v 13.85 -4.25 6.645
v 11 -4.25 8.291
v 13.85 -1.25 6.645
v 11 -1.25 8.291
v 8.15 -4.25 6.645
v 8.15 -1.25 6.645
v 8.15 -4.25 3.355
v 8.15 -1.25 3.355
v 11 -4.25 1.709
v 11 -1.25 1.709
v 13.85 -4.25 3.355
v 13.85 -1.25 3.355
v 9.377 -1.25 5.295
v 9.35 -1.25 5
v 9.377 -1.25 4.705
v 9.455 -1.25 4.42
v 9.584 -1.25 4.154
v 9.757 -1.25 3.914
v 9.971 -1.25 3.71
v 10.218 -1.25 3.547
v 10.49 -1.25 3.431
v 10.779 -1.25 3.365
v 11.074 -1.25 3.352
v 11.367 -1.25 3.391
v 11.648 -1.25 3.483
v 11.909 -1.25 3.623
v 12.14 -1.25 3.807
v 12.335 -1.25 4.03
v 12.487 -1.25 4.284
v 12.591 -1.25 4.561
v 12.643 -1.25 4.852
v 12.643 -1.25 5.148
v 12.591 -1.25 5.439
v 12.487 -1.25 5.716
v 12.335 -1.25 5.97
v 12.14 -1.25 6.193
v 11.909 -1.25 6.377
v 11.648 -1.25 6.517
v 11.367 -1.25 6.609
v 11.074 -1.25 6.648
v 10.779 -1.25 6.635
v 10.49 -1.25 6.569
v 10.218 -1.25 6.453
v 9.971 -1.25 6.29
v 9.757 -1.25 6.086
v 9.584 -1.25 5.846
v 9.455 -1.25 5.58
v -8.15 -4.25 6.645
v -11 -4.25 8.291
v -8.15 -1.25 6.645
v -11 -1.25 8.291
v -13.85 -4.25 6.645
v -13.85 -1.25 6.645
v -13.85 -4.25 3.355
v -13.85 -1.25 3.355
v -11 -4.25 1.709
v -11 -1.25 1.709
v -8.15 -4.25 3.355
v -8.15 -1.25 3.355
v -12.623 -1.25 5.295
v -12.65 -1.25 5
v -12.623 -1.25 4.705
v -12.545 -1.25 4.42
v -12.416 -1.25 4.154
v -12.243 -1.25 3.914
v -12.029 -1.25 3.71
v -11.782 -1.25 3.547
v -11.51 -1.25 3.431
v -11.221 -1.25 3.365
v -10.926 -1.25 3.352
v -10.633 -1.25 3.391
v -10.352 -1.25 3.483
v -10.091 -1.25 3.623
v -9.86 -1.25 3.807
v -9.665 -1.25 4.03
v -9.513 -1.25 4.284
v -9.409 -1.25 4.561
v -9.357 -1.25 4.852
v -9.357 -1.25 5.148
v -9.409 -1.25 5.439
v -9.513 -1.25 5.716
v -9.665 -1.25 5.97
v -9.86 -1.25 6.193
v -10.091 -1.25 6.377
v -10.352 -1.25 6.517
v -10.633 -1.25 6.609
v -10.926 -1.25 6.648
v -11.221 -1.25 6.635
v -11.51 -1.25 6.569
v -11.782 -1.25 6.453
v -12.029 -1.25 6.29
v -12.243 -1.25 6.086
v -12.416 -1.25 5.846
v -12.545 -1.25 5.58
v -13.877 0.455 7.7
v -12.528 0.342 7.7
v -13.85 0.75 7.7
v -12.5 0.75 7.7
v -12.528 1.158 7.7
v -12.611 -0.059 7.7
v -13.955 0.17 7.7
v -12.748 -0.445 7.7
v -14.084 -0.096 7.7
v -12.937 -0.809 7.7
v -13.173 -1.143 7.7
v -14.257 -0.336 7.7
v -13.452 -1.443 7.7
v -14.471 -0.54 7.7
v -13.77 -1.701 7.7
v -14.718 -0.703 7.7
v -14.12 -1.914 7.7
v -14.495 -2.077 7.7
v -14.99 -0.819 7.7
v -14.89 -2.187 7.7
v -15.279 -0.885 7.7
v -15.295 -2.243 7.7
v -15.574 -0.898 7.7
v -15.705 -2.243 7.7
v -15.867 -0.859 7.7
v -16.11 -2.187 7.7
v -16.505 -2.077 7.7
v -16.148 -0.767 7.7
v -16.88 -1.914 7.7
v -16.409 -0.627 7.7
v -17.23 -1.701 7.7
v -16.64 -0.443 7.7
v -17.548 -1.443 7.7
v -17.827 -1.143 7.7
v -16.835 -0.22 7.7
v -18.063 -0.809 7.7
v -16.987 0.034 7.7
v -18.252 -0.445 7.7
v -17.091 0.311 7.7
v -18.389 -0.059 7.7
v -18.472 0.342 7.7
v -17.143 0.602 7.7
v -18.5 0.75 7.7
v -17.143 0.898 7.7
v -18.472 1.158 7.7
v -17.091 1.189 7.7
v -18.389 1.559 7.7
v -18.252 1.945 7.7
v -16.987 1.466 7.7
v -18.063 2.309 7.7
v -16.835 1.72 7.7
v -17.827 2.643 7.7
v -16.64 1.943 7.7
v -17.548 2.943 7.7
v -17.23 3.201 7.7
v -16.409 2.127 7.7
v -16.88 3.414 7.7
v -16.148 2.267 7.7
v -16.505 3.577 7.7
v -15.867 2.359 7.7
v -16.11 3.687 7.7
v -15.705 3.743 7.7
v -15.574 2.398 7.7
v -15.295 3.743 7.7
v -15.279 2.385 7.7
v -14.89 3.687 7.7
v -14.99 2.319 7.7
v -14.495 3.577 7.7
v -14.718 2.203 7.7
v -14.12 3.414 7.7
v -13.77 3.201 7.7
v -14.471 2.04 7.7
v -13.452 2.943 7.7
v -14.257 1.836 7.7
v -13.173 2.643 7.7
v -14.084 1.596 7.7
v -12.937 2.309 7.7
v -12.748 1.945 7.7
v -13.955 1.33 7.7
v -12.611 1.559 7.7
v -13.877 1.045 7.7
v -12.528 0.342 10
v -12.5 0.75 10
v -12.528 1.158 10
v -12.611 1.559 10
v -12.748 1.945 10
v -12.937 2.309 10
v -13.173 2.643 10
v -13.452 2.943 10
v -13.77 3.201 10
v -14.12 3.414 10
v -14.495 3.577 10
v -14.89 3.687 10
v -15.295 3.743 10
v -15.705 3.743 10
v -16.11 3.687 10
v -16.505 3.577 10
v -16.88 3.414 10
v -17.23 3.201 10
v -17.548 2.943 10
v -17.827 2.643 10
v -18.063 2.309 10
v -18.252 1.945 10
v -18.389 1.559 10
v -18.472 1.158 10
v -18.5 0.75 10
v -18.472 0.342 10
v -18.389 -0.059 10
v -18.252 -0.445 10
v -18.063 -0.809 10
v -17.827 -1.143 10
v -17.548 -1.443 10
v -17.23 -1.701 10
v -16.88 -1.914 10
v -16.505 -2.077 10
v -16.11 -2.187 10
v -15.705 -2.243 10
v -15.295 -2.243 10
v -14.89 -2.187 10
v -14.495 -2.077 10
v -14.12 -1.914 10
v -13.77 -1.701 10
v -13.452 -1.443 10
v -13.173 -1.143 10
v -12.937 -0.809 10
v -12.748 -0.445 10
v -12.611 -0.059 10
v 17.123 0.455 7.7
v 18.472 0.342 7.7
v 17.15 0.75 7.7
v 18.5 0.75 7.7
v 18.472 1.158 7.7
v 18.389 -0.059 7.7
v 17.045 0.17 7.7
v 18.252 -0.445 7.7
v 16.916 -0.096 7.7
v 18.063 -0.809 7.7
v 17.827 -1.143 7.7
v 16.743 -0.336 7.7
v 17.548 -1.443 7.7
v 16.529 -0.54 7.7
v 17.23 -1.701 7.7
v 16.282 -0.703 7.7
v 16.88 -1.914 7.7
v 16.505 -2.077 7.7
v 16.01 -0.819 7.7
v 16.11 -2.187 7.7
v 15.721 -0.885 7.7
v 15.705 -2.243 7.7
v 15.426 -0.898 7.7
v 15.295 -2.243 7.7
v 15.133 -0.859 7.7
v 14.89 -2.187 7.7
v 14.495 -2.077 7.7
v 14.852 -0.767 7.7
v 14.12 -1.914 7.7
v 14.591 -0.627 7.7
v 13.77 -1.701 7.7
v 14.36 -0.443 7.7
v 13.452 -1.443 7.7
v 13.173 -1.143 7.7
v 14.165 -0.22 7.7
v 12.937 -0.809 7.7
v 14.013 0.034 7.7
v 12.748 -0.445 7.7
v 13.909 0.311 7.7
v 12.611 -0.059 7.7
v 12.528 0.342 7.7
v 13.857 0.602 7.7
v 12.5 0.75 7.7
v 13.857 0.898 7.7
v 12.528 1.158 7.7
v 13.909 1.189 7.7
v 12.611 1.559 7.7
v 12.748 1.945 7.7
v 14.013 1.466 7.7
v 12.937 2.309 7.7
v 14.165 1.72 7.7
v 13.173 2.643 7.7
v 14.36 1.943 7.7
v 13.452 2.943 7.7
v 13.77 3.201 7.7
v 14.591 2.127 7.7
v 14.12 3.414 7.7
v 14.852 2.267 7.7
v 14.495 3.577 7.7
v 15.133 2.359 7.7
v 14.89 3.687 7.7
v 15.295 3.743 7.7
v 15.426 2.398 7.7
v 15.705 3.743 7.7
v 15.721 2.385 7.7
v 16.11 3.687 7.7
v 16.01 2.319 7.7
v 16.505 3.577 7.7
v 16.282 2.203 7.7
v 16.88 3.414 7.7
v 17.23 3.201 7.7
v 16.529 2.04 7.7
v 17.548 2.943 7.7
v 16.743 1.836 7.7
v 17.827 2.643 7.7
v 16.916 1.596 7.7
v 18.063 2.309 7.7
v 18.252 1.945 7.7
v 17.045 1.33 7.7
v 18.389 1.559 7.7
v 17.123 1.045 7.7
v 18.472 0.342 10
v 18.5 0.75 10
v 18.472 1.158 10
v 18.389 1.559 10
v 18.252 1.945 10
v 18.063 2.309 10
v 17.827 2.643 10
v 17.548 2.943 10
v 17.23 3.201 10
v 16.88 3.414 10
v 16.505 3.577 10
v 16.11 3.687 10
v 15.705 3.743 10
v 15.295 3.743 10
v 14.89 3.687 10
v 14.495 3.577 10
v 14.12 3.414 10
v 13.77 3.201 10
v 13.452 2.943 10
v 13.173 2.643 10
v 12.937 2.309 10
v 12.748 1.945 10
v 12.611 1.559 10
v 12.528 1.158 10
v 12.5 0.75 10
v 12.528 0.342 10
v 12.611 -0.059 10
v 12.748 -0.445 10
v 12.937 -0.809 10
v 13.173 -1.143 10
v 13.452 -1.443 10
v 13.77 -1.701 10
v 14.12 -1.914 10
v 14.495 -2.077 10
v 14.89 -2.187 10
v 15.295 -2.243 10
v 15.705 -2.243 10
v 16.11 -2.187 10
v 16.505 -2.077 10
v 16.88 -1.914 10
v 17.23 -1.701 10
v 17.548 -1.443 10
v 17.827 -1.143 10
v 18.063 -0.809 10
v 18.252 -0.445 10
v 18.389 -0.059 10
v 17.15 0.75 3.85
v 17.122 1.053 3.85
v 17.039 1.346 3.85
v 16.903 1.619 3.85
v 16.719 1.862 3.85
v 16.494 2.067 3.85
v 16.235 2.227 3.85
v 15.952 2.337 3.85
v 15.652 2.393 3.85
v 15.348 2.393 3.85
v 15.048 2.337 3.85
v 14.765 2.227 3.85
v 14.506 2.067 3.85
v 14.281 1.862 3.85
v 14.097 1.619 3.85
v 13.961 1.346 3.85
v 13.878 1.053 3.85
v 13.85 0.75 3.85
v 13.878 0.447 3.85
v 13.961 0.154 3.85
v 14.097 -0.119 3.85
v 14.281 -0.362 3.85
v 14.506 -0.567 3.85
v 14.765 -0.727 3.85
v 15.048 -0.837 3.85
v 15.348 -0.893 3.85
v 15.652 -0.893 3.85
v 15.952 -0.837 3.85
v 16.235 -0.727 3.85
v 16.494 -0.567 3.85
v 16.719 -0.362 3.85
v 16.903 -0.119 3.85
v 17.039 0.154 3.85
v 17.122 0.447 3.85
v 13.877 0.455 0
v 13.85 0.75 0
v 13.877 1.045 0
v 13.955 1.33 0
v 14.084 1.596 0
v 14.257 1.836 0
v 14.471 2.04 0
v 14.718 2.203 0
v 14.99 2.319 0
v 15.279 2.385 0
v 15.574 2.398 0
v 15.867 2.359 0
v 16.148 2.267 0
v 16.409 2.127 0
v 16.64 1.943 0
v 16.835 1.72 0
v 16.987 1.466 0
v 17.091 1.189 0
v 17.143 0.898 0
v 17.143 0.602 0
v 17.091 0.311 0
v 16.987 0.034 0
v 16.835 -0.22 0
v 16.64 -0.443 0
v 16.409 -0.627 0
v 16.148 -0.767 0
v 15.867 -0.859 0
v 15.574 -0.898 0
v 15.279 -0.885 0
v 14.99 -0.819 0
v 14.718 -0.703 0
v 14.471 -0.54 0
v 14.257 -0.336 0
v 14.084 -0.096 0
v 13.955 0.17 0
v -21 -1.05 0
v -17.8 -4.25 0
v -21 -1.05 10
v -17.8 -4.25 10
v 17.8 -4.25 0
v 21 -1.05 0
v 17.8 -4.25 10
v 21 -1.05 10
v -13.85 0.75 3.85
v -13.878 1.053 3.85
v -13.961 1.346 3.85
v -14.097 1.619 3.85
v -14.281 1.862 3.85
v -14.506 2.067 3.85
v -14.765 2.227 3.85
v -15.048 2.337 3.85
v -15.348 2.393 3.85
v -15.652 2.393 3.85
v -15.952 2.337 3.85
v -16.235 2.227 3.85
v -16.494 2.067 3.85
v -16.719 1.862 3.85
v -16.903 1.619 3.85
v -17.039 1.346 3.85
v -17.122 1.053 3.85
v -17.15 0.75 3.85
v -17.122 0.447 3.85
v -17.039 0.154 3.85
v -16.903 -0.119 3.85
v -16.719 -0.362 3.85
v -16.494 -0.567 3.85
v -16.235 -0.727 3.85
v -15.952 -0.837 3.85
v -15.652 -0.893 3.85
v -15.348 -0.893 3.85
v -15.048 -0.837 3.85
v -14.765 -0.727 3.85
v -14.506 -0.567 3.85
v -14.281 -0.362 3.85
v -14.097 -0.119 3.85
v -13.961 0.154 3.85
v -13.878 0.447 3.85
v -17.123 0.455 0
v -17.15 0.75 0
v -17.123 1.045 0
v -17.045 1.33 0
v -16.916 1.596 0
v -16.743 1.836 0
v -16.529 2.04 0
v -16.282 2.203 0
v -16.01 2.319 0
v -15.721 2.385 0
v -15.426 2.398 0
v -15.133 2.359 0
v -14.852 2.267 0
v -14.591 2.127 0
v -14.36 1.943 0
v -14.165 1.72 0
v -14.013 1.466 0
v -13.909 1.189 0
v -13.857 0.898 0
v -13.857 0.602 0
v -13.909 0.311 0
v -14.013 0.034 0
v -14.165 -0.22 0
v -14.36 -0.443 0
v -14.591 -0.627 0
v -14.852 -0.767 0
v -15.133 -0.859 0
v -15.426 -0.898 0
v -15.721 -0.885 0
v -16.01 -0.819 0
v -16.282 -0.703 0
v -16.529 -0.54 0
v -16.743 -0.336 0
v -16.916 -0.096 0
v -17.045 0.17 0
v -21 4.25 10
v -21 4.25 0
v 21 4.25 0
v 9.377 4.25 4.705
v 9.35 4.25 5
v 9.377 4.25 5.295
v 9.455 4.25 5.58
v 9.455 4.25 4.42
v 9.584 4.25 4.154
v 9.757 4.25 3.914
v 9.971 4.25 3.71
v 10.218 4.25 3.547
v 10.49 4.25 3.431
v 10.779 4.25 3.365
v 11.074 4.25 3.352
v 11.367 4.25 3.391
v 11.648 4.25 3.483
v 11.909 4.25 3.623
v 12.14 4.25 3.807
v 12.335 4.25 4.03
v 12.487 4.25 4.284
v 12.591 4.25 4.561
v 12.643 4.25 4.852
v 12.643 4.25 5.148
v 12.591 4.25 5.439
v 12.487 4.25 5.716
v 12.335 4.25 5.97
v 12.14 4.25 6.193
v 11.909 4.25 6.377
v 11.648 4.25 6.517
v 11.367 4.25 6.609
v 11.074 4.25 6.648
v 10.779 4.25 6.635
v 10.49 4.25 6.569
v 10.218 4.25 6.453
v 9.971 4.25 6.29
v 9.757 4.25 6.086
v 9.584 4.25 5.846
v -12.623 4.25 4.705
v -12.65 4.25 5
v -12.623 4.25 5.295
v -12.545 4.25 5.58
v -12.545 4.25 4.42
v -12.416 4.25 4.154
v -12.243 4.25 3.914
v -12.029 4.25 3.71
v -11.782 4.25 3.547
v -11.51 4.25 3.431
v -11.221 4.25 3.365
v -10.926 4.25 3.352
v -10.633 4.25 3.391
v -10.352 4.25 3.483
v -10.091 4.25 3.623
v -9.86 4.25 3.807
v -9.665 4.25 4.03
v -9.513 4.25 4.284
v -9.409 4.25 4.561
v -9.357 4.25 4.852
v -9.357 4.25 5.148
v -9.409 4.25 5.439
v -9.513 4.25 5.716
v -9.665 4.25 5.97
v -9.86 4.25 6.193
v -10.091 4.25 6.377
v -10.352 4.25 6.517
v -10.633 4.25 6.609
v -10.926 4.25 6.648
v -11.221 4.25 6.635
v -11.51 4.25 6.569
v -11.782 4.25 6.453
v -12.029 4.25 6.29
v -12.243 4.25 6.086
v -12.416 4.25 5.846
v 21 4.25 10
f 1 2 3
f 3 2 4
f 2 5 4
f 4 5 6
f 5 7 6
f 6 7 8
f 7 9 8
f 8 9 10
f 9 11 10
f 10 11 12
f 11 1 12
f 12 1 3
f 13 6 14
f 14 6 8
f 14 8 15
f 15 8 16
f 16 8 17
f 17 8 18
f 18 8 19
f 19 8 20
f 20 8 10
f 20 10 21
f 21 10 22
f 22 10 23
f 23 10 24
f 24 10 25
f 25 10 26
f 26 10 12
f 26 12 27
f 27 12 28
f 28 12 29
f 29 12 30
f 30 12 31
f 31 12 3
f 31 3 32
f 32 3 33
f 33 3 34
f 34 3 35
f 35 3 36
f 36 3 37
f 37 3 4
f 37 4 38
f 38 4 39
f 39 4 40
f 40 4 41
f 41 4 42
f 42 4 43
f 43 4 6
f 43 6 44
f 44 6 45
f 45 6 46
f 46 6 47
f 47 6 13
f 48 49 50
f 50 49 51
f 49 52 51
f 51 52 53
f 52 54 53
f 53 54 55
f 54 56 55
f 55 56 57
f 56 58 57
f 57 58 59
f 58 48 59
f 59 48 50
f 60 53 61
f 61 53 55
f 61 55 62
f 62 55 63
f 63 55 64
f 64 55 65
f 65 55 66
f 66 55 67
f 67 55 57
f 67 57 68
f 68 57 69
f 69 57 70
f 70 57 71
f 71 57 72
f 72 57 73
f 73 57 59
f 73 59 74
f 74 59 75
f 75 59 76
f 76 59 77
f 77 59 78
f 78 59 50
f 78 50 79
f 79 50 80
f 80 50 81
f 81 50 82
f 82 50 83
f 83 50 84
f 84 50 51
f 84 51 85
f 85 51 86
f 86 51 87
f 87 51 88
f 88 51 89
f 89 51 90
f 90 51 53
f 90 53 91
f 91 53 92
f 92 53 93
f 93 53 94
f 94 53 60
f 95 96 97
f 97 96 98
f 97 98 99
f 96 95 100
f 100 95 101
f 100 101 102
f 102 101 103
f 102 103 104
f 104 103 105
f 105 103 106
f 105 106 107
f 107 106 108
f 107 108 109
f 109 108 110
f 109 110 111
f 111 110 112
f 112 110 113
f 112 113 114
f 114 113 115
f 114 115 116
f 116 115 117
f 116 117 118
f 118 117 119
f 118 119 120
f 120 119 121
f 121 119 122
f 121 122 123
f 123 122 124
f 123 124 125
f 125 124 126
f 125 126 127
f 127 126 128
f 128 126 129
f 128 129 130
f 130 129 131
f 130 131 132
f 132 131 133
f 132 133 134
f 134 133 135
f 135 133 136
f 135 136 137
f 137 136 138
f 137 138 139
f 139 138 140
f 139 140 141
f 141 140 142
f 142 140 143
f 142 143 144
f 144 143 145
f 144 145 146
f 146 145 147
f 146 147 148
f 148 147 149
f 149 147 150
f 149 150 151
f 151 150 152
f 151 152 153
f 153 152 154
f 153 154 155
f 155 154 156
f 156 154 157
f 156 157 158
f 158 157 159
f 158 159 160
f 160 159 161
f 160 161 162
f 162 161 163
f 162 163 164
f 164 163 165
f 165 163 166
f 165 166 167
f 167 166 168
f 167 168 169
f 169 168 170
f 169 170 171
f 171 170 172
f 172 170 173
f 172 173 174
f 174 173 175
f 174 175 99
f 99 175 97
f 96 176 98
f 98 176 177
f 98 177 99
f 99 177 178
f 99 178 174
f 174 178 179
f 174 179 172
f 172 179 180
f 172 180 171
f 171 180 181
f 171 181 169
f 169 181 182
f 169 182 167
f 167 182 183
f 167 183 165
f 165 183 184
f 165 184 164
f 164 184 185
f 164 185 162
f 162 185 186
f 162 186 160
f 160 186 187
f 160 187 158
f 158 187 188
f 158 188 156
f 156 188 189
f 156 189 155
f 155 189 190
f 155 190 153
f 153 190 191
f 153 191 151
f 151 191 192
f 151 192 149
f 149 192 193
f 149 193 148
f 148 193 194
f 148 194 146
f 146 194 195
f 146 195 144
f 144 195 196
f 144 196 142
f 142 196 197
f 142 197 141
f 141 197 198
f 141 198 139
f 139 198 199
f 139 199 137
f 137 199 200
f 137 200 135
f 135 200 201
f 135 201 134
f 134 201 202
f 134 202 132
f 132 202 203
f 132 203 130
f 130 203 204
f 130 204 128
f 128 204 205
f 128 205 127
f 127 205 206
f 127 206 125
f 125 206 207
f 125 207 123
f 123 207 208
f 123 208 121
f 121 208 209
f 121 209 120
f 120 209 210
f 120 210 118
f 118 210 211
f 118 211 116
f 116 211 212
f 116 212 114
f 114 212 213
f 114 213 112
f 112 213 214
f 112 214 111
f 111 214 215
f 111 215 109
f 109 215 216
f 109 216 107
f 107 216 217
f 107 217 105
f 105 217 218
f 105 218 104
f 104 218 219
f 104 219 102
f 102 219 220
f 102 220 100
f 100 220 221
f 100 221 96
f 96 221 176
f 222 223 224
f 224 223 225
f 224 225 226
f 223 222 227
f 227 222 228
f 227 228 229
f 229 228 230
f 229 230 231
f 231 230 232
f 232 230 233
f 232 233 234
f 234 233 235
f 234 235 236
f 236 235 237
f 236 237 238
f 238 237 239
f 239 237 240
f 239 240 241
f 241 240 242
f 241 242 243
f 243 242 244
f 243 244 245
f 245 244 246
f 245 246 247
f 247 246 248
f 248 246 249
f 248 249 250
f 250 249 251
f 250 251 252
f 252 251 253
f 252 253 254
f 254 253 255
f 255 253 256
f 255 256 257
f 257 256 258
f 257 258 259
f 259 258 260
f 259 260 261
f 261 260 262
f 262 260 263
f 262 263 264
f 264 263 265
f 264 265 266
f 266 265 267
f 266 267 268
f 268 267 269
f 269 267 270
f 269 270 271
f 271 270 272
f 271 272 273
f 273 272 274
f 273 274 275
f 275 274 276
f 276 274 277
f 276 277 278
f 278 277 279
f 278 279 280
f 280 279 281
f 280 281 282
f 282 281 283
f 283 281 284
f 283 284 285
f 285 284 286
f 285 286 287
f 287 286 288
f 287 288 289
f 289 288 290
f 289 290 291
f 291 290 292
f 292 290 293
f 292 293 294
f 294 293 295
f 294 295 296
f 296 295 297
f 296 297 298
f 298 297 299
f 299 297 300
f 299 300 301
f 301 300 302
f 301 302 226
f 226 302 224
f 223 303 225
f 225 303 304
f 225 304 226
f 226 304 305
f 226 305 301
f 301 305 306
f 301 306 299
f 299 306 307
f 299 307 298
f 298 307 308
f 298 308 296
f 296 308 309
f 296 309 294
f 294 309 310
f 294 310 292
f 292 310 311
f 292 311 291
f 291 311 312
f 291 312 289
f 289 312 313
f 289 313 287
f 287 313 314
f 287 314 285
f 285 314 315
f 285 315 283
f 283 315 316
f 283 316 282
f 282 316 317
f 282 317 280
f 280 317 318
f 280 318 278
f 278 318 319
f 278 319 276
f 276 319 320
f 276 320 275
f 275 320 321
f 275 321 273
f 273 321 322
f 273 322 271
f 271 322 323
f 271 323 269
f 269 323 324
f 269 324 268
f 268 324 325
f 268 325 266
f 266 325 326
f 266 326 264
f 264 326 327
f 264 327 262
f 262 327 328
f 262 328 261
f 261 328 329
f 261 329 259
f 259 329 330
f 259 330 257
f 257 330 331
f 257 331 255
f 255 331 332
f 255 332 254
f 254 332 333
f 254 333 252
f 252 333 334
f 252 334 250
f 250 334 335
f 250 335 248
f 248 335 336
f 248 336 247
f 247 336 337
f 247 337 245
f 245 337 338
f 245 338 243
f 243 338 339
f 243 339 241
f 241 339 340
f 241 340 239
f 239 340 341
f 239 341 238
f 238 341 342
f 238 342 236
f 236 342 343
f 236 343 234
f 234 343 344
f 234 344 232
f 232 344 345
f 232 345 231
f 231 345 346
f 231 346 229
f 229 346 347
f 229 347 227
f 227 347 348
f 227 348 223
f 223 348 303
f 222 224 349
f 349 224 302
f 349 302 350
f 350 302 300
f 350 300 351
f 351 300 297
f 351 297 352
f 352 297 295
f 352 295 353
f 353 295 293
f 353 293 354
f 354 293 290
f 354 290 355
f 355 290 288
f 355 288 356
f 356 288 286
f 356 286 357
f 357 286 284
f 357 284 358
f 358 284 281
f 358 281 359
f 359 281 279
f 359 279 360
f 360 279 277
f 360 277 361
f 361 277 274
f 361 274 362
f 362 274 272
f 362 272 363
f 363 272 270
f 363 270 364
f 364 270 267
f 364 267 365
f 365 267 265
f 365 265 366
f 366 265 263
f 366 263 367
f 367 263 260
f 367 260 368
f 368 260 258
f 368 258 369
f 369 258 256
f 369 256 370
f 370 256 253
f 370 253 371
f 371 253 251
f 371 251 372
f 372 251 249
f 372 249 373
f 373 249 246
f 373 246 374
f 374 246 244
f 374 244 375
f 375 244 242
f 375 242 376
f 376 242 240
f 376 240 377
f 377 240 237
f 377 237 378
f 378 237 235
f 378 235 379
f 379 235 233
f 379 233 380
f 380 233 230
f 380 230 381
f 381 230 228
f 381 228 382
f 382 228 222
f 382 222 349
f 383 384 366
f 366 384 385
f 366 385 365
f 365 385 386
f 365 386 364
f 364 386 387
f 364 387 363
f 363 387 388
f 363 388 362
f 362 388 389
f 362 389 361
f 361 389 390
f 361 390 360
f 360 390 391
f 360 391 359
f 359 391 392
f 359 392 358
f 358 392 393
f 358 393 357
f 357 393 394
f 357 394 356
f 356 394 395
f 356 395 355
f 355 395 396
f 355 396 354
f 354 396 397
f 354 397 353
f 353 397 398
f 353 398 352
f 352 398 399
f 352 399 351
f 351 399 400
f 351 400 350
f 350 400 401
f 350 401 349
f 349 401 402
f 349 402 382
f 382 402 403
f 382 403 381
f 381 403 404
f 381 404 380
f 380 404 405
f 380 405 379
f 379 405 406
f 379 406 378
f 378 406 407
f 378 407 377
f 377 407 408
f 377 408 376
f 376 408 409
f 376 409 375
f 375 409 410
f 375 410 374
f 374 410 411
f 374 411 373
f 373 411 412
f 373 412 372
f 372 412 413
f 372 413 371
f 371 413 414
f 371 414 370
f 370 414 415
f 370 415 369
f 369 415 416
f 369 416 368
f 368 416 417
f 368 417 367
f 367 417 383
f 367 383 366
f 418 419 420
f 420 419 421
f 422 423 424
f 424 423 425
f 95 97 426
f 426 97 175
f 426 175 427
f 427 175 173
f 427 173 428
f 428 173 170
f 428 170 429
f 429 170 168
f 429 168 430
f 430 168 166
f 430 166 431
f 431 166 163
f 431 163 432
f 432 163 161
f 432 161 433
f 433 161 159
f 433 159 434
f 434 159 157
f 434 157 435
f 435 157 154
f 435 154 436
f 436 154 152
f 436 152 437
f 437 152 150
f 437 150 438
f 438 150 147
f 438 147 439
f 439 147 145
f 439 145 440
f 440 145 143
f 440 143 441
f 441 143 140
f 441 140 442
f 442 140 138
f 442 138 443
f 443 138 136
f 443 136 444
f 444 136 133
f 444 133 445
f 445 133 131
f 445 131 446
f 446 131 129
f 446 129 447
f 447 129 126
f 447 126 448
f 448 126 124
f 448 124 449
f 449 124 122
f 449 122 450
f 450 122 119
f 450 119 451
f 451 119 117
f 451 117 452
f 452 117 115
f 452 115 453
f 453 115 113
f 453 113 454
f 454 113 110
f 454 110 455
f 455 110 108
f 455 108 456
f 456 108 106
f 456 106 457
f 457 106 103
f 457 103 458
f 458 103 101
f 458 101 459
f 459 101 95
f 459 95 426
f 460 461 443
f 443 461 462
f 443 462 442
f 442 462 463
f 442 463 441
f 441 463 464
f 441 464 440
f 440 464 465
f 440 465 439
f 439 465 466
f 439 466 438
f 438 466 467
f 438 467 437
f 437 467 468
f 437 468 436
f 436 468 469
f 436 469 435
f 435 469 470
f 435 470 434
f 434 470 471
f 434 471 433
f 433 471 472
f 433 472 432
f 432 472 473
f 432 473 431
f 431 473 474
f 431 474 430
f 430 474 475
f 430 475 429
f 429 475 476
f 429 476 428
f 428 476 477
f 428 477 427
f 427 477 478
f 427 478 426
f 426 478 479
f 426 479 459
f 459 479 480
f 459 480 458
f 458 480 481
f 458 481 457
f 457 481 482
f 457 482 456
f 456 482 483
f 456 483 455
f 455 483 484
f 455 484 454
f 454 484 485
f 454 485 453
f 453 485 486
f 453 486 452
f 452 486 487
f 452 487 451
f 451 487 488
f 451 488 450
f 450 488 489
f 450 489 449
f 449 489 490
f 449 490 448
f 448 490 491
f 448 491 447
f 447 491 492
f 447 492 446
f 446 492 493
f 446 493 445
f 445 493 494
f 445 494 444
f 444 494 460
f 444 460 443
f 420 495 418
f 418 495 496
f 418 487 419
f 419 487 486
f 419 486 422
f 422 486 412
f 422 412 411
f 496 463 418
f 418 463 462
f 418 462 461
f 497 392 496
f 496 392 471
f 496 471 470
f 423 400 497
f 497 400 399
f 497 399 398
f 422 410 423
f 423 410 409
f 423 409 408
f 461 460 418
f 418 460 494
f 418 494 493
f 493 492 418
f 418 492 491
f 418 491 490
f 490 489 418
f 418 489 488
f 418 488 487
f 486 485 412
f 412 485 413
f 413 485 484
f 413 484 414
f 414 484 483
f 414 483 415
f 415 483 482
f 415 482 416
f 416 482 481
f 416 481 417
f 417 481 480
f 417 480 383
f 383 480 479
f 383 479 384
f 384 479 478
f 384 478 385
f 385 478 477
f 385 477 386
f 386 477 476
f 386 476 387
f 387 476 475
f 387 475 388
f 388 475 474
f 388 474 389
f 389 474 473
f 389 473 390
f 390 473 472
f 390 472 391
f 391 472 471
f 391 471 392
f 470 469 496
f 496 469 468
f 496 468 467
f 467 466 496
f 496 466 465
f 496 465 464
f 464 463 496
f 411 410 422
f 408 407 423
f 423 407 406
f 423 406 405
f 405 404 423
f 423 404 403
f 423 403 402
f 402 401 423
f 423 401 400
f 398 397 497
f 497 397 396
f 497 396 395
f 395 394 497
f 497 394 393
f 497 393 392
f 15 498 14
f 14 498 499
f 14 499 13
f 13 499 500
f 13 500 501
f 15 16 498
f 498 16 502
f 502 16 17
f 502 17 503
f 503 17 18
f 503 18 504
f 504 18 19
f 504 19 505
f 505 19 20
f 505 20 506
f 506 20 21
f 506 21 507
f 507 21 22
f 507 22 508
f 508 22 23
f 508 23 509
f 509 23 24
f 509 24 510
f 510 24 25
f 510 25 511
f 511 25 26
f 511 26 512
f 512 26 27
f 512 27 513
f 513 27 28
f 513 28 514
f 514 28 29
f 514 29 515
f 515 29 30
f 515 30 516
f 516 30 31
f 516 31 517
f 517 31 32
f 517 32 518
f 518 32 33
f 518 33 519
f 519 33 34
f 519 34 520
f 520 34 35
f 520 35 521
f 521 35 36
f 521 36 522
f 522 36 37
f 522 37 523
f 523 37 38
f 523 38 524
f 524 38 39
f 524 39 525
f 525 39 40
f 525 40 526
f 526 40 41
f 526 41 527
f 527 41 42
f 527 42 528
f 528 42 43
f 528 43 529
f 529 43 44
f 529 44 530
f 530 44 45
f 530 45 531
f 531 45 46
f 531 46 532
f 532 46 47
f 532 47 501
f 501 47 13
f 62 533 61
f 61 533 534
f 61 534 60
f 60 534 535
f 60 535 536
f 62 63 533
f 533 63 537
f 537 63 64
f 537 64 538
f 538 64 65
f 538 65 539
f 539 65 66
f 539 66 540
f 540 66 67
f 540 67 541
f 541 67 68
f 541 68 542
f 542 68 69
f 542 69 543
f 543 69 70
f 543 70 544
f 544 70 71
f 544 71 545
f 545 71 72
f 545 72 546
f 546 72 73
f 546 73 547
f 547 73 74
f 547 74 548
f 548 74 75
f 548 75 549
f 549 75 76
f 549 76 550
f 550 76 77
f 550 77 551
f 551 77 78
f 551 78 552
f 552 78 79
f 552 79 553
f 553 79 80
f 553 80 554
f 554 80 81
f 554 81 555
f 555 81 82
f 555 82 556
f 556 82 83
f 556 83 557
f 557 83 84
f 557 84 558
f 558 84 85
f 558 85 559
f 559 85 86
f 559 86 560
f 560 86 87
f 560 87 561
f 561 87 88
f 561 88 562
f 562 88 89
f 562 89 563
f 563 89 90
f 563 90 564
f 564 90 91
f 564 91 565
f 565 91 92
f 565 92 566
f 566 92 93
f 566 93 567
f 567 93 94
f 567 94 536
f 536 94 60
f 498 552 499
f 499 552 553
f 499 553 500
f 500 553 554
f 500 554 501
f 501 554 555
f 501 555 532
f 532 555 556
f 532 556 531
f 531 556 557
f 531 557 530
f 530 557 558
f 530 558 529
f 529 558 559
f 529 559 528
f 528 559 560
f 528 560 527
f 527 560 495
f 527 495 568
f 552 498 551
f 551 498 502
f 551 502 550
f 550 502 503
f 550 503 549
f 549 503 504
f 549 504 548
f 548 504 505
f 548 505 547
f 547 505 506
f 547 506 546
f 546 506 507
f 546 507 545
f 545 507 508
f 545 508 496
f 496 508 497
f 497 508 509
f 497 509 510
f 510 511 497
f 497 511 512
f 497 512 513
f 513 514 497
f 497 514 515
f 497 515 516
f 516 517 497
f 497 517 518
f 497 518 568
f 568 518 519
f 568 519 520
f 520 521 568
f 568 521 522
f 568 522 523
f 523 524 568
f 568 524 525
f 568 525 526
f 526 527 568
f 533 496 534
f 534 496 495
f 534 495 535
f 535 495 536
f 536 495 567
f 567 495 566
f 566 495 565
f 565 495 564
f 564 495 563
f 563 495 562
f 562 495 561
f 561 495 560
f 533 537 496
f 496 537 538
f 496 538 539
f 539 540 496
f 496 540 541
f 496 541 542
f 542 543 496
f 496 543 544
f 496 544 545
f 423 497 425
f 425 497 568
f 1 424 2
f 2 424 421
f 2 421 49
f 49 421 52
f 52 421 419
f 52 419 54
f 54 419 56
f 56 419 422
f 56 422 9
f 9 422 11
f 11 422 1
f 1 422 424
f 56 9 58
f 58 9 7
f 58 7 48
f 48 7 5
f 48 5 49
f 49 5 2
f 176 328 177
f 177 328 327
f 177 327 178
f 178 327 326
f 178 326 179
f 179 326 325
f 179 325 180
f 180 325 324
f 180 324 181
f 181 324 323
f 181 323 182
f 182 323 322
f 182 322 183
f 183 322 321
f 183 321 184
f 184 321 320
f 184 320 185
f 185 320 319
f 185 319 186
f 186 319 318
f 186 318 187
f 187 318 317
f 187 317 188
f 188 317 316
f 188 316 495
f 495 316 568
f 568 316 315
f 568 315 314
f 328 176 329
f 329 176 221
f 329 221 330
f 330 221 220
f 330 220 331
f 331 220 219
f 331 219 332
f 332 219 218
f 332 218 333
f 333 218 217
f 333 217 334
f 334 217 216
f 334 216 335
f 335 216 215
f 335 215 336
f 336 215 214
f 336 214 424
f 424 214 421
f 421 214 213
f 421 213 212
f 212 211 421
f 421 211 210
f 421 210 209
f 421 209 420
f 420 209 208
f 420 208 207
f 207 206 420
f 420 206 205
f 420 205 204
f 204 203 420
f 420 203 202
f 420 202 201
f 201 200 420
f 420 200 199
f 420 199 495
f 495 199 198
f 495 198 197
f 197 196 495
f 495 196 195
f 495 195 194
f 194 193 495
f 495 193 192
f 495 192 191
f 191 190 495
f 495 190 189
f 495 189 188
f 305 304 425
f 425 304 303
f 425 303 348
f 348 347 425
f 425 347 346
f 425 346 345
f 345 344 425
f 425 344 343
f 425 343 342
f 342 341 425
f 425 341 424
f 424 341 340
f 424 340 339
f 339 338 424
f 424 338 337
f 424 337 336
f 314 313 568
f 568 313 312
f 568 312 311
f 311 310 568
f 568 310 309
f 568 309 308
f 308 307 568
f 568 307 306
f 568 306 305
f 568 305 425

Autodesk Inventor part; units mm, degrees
ref_plane "YZ Plane" through (0, 0, 0) normal (1, 0, 0) x (0, 1, 0)
ref_plane "XZ Plane" through (0, 0, 0) normal (0, 1, 0) x (-1, 0, 0)
ref_plane "XY Plane" through (0, 0, 0) normal (0, 0, 1) x (1, 0, 0)
sketch "草圖1" plane through (0, 0, 0) normal (0, 0, 1) x (1, 0, 0)
  line L0 (-29.4, 0) -> (29.4, 0) projected
  line L1 (0, -5.95) -> (0, 5.95) projected
  line L2 (-21, 4.25) -> (21, 4.25)
  line L3 (21, 4.25) -> (21, -4.25)
  line L4 (21, -4.25) -> (-21, -4.25)
  line L5 (-21, -4.25) -> (-21, 4.25)
  point P0 (0, 0)
  dimension "d0" = 8.5
  dimension "d1" = 42
extrude "擠出1" add sketch "草圖1" along normal blind 10
sketch "草圖2" plane through (-21, -4.25, 0) normal (0, -1, 0) x (1, 0, 0)
  line L0 (0, 0) -> (42, 0) projected
  line L1 (42, 0) -> (42, 10) projected
  line L2 (0, 10) -> (42, 10) projected
  line L3 (0, 0) -> (0, 10) projected
  circle A0 centre (10, 5) radius 4
  circle A1 centre (10, 5) radius 1.65
  line L4 (21, 0) -> (21, -1.5889)
  circle A2 centre (32, 5) radius 4
  circle A3 centre (32, 5) radius 1.65
  line L5 (10, 1.7091) -> (7.15, 3.3546)
  line L6 (7.15, 3.3546) -> (7.15, 6.6454)
  line L7 (7.15, 6.6454) -> (10, 8.2909)
  line L8 (10, 8.2909) -> (12.85, 6.6454)
  line L9 (12.85, 6.6454) -> (12.85, 3.3546)
  line L10 (12.85, 3.3546) -> (10, 1.7091)
  line L11 (32, 1.7091) -> (29.15, 3.3546)
  line L12 (29.15, 3.3546) -> (29.15, 6.6454)
  line L13 (29.15, 6.6454) -> (32, 8.2909)
  line L14 (32, 8.2909) -> (34.85, 6.6454)
  line L15 (34.85, 6.6454) -> (34.85, 3.3546)
  line L16 (34.85, 3.3546) -> (32, 1.7091)
  point P0 (29.15, 5)
  dimension "d5" = 3.3
  dimension "d6" = 10
  dimension "d24" = 5.7
  dimension "d25" = 5.7
  dimension "d32" = 5
extrude "擠出2" cut sketch "草圖2" against normal blind 10 contours A1 | A3
sketch "草圖3" plane through (0, 0, 10) normal (0, 0, 1) x (1, 0, 0)
  line L0 (-21, -4.25) -> (21, -4.25) projected
  line L1 (21, -4.25) -> (21, 4.25) projected
  line L2 (21, 4.25) -> (-21, 4.25) projected
  line L3 (-21, 4.25) -> (-21, -4.25) projected
  line L4 (-17.8, -4.25) -> (-21, -1.05)
  line L5 (0, 4.25) -> (0, 6.2817)
  line L6 (17.8, -4.25) -> (21, -1.05)
  line L7 (17.8, -4.25) -> (22.3255, -4.25) construction
  circle A0 centre (-15.5, 0.75) radius 1.65
  circle A1 centre (-15.5, 0.75) radius 3
  circle A2 centre (15.5, 0.75) radius 1.65
  circle A3 centre (15.5, 0.75) radius 3
  line L8 (-18.5, 0.75) -> (-12.5, 0.75)
  line L9 (-12.5, 0.75) -> (-12.5, 4.25)
  line L10 (-12.5, 4.25) -> (-18.5, 4.25)
  line L11 (-18.5, 4.25) -> (-18.5, 0.75)
  line L12 (12.5, 0.75) -> (18.5, 0.75)
  line L13 (18.5, 0.75) -> (18.5, 4.25)
  line L14 (18.5, 4.25) -> (12.5, 4.25)
  line L15 (12.5, 4.25) -> (12.5, 0.75)
  point P0 (0, 0)
  point P1 (13.85, 0.75)
  point P2 (17.15, 0.75)
  point P3 (12.5, 4.25)
  point P4 (-12.5, 0.75)
  point P5 (-17.15, 0.75)
  point P6 (-13.85, 0.75)
  dimension "d16" = 6
  dimension "d11" = 3.2
  dimension "d12" = 45
  dimension "d13" = 45
  dimension "d14" = 3.2
  dimension "d15" = 3.3
  dimension "d17" = 5.5
  dimension "d28" = 3.5
extrude "擠出4" cut sketch "草圖3" against normal up to surface (10 mm away) contours L3 L4 L0 | L6 L1 L0 | L8 A0 | A0 L8 | L12 A2 | A2 L12
extrude "擠出6" cut sketch "草圖3" against normal blind 2.3 contours L8 A0 A1 | A1 L8 A0 | A0 L8 | L12 A2 A3 | A3 L12 A2 | L12 A2 picked at (-15.1043, 1.2463) picked at (16.003, 1.1372)
extrude "擠出7" cut sketch "草圖2" against normal blind 3 contours A1 | A3 | L5 L6 L7 L8 L9 L10 | L11 L12 L13 L14 L15 L16
properties part number "y_motor_lock_bottom2_3D 列印"
